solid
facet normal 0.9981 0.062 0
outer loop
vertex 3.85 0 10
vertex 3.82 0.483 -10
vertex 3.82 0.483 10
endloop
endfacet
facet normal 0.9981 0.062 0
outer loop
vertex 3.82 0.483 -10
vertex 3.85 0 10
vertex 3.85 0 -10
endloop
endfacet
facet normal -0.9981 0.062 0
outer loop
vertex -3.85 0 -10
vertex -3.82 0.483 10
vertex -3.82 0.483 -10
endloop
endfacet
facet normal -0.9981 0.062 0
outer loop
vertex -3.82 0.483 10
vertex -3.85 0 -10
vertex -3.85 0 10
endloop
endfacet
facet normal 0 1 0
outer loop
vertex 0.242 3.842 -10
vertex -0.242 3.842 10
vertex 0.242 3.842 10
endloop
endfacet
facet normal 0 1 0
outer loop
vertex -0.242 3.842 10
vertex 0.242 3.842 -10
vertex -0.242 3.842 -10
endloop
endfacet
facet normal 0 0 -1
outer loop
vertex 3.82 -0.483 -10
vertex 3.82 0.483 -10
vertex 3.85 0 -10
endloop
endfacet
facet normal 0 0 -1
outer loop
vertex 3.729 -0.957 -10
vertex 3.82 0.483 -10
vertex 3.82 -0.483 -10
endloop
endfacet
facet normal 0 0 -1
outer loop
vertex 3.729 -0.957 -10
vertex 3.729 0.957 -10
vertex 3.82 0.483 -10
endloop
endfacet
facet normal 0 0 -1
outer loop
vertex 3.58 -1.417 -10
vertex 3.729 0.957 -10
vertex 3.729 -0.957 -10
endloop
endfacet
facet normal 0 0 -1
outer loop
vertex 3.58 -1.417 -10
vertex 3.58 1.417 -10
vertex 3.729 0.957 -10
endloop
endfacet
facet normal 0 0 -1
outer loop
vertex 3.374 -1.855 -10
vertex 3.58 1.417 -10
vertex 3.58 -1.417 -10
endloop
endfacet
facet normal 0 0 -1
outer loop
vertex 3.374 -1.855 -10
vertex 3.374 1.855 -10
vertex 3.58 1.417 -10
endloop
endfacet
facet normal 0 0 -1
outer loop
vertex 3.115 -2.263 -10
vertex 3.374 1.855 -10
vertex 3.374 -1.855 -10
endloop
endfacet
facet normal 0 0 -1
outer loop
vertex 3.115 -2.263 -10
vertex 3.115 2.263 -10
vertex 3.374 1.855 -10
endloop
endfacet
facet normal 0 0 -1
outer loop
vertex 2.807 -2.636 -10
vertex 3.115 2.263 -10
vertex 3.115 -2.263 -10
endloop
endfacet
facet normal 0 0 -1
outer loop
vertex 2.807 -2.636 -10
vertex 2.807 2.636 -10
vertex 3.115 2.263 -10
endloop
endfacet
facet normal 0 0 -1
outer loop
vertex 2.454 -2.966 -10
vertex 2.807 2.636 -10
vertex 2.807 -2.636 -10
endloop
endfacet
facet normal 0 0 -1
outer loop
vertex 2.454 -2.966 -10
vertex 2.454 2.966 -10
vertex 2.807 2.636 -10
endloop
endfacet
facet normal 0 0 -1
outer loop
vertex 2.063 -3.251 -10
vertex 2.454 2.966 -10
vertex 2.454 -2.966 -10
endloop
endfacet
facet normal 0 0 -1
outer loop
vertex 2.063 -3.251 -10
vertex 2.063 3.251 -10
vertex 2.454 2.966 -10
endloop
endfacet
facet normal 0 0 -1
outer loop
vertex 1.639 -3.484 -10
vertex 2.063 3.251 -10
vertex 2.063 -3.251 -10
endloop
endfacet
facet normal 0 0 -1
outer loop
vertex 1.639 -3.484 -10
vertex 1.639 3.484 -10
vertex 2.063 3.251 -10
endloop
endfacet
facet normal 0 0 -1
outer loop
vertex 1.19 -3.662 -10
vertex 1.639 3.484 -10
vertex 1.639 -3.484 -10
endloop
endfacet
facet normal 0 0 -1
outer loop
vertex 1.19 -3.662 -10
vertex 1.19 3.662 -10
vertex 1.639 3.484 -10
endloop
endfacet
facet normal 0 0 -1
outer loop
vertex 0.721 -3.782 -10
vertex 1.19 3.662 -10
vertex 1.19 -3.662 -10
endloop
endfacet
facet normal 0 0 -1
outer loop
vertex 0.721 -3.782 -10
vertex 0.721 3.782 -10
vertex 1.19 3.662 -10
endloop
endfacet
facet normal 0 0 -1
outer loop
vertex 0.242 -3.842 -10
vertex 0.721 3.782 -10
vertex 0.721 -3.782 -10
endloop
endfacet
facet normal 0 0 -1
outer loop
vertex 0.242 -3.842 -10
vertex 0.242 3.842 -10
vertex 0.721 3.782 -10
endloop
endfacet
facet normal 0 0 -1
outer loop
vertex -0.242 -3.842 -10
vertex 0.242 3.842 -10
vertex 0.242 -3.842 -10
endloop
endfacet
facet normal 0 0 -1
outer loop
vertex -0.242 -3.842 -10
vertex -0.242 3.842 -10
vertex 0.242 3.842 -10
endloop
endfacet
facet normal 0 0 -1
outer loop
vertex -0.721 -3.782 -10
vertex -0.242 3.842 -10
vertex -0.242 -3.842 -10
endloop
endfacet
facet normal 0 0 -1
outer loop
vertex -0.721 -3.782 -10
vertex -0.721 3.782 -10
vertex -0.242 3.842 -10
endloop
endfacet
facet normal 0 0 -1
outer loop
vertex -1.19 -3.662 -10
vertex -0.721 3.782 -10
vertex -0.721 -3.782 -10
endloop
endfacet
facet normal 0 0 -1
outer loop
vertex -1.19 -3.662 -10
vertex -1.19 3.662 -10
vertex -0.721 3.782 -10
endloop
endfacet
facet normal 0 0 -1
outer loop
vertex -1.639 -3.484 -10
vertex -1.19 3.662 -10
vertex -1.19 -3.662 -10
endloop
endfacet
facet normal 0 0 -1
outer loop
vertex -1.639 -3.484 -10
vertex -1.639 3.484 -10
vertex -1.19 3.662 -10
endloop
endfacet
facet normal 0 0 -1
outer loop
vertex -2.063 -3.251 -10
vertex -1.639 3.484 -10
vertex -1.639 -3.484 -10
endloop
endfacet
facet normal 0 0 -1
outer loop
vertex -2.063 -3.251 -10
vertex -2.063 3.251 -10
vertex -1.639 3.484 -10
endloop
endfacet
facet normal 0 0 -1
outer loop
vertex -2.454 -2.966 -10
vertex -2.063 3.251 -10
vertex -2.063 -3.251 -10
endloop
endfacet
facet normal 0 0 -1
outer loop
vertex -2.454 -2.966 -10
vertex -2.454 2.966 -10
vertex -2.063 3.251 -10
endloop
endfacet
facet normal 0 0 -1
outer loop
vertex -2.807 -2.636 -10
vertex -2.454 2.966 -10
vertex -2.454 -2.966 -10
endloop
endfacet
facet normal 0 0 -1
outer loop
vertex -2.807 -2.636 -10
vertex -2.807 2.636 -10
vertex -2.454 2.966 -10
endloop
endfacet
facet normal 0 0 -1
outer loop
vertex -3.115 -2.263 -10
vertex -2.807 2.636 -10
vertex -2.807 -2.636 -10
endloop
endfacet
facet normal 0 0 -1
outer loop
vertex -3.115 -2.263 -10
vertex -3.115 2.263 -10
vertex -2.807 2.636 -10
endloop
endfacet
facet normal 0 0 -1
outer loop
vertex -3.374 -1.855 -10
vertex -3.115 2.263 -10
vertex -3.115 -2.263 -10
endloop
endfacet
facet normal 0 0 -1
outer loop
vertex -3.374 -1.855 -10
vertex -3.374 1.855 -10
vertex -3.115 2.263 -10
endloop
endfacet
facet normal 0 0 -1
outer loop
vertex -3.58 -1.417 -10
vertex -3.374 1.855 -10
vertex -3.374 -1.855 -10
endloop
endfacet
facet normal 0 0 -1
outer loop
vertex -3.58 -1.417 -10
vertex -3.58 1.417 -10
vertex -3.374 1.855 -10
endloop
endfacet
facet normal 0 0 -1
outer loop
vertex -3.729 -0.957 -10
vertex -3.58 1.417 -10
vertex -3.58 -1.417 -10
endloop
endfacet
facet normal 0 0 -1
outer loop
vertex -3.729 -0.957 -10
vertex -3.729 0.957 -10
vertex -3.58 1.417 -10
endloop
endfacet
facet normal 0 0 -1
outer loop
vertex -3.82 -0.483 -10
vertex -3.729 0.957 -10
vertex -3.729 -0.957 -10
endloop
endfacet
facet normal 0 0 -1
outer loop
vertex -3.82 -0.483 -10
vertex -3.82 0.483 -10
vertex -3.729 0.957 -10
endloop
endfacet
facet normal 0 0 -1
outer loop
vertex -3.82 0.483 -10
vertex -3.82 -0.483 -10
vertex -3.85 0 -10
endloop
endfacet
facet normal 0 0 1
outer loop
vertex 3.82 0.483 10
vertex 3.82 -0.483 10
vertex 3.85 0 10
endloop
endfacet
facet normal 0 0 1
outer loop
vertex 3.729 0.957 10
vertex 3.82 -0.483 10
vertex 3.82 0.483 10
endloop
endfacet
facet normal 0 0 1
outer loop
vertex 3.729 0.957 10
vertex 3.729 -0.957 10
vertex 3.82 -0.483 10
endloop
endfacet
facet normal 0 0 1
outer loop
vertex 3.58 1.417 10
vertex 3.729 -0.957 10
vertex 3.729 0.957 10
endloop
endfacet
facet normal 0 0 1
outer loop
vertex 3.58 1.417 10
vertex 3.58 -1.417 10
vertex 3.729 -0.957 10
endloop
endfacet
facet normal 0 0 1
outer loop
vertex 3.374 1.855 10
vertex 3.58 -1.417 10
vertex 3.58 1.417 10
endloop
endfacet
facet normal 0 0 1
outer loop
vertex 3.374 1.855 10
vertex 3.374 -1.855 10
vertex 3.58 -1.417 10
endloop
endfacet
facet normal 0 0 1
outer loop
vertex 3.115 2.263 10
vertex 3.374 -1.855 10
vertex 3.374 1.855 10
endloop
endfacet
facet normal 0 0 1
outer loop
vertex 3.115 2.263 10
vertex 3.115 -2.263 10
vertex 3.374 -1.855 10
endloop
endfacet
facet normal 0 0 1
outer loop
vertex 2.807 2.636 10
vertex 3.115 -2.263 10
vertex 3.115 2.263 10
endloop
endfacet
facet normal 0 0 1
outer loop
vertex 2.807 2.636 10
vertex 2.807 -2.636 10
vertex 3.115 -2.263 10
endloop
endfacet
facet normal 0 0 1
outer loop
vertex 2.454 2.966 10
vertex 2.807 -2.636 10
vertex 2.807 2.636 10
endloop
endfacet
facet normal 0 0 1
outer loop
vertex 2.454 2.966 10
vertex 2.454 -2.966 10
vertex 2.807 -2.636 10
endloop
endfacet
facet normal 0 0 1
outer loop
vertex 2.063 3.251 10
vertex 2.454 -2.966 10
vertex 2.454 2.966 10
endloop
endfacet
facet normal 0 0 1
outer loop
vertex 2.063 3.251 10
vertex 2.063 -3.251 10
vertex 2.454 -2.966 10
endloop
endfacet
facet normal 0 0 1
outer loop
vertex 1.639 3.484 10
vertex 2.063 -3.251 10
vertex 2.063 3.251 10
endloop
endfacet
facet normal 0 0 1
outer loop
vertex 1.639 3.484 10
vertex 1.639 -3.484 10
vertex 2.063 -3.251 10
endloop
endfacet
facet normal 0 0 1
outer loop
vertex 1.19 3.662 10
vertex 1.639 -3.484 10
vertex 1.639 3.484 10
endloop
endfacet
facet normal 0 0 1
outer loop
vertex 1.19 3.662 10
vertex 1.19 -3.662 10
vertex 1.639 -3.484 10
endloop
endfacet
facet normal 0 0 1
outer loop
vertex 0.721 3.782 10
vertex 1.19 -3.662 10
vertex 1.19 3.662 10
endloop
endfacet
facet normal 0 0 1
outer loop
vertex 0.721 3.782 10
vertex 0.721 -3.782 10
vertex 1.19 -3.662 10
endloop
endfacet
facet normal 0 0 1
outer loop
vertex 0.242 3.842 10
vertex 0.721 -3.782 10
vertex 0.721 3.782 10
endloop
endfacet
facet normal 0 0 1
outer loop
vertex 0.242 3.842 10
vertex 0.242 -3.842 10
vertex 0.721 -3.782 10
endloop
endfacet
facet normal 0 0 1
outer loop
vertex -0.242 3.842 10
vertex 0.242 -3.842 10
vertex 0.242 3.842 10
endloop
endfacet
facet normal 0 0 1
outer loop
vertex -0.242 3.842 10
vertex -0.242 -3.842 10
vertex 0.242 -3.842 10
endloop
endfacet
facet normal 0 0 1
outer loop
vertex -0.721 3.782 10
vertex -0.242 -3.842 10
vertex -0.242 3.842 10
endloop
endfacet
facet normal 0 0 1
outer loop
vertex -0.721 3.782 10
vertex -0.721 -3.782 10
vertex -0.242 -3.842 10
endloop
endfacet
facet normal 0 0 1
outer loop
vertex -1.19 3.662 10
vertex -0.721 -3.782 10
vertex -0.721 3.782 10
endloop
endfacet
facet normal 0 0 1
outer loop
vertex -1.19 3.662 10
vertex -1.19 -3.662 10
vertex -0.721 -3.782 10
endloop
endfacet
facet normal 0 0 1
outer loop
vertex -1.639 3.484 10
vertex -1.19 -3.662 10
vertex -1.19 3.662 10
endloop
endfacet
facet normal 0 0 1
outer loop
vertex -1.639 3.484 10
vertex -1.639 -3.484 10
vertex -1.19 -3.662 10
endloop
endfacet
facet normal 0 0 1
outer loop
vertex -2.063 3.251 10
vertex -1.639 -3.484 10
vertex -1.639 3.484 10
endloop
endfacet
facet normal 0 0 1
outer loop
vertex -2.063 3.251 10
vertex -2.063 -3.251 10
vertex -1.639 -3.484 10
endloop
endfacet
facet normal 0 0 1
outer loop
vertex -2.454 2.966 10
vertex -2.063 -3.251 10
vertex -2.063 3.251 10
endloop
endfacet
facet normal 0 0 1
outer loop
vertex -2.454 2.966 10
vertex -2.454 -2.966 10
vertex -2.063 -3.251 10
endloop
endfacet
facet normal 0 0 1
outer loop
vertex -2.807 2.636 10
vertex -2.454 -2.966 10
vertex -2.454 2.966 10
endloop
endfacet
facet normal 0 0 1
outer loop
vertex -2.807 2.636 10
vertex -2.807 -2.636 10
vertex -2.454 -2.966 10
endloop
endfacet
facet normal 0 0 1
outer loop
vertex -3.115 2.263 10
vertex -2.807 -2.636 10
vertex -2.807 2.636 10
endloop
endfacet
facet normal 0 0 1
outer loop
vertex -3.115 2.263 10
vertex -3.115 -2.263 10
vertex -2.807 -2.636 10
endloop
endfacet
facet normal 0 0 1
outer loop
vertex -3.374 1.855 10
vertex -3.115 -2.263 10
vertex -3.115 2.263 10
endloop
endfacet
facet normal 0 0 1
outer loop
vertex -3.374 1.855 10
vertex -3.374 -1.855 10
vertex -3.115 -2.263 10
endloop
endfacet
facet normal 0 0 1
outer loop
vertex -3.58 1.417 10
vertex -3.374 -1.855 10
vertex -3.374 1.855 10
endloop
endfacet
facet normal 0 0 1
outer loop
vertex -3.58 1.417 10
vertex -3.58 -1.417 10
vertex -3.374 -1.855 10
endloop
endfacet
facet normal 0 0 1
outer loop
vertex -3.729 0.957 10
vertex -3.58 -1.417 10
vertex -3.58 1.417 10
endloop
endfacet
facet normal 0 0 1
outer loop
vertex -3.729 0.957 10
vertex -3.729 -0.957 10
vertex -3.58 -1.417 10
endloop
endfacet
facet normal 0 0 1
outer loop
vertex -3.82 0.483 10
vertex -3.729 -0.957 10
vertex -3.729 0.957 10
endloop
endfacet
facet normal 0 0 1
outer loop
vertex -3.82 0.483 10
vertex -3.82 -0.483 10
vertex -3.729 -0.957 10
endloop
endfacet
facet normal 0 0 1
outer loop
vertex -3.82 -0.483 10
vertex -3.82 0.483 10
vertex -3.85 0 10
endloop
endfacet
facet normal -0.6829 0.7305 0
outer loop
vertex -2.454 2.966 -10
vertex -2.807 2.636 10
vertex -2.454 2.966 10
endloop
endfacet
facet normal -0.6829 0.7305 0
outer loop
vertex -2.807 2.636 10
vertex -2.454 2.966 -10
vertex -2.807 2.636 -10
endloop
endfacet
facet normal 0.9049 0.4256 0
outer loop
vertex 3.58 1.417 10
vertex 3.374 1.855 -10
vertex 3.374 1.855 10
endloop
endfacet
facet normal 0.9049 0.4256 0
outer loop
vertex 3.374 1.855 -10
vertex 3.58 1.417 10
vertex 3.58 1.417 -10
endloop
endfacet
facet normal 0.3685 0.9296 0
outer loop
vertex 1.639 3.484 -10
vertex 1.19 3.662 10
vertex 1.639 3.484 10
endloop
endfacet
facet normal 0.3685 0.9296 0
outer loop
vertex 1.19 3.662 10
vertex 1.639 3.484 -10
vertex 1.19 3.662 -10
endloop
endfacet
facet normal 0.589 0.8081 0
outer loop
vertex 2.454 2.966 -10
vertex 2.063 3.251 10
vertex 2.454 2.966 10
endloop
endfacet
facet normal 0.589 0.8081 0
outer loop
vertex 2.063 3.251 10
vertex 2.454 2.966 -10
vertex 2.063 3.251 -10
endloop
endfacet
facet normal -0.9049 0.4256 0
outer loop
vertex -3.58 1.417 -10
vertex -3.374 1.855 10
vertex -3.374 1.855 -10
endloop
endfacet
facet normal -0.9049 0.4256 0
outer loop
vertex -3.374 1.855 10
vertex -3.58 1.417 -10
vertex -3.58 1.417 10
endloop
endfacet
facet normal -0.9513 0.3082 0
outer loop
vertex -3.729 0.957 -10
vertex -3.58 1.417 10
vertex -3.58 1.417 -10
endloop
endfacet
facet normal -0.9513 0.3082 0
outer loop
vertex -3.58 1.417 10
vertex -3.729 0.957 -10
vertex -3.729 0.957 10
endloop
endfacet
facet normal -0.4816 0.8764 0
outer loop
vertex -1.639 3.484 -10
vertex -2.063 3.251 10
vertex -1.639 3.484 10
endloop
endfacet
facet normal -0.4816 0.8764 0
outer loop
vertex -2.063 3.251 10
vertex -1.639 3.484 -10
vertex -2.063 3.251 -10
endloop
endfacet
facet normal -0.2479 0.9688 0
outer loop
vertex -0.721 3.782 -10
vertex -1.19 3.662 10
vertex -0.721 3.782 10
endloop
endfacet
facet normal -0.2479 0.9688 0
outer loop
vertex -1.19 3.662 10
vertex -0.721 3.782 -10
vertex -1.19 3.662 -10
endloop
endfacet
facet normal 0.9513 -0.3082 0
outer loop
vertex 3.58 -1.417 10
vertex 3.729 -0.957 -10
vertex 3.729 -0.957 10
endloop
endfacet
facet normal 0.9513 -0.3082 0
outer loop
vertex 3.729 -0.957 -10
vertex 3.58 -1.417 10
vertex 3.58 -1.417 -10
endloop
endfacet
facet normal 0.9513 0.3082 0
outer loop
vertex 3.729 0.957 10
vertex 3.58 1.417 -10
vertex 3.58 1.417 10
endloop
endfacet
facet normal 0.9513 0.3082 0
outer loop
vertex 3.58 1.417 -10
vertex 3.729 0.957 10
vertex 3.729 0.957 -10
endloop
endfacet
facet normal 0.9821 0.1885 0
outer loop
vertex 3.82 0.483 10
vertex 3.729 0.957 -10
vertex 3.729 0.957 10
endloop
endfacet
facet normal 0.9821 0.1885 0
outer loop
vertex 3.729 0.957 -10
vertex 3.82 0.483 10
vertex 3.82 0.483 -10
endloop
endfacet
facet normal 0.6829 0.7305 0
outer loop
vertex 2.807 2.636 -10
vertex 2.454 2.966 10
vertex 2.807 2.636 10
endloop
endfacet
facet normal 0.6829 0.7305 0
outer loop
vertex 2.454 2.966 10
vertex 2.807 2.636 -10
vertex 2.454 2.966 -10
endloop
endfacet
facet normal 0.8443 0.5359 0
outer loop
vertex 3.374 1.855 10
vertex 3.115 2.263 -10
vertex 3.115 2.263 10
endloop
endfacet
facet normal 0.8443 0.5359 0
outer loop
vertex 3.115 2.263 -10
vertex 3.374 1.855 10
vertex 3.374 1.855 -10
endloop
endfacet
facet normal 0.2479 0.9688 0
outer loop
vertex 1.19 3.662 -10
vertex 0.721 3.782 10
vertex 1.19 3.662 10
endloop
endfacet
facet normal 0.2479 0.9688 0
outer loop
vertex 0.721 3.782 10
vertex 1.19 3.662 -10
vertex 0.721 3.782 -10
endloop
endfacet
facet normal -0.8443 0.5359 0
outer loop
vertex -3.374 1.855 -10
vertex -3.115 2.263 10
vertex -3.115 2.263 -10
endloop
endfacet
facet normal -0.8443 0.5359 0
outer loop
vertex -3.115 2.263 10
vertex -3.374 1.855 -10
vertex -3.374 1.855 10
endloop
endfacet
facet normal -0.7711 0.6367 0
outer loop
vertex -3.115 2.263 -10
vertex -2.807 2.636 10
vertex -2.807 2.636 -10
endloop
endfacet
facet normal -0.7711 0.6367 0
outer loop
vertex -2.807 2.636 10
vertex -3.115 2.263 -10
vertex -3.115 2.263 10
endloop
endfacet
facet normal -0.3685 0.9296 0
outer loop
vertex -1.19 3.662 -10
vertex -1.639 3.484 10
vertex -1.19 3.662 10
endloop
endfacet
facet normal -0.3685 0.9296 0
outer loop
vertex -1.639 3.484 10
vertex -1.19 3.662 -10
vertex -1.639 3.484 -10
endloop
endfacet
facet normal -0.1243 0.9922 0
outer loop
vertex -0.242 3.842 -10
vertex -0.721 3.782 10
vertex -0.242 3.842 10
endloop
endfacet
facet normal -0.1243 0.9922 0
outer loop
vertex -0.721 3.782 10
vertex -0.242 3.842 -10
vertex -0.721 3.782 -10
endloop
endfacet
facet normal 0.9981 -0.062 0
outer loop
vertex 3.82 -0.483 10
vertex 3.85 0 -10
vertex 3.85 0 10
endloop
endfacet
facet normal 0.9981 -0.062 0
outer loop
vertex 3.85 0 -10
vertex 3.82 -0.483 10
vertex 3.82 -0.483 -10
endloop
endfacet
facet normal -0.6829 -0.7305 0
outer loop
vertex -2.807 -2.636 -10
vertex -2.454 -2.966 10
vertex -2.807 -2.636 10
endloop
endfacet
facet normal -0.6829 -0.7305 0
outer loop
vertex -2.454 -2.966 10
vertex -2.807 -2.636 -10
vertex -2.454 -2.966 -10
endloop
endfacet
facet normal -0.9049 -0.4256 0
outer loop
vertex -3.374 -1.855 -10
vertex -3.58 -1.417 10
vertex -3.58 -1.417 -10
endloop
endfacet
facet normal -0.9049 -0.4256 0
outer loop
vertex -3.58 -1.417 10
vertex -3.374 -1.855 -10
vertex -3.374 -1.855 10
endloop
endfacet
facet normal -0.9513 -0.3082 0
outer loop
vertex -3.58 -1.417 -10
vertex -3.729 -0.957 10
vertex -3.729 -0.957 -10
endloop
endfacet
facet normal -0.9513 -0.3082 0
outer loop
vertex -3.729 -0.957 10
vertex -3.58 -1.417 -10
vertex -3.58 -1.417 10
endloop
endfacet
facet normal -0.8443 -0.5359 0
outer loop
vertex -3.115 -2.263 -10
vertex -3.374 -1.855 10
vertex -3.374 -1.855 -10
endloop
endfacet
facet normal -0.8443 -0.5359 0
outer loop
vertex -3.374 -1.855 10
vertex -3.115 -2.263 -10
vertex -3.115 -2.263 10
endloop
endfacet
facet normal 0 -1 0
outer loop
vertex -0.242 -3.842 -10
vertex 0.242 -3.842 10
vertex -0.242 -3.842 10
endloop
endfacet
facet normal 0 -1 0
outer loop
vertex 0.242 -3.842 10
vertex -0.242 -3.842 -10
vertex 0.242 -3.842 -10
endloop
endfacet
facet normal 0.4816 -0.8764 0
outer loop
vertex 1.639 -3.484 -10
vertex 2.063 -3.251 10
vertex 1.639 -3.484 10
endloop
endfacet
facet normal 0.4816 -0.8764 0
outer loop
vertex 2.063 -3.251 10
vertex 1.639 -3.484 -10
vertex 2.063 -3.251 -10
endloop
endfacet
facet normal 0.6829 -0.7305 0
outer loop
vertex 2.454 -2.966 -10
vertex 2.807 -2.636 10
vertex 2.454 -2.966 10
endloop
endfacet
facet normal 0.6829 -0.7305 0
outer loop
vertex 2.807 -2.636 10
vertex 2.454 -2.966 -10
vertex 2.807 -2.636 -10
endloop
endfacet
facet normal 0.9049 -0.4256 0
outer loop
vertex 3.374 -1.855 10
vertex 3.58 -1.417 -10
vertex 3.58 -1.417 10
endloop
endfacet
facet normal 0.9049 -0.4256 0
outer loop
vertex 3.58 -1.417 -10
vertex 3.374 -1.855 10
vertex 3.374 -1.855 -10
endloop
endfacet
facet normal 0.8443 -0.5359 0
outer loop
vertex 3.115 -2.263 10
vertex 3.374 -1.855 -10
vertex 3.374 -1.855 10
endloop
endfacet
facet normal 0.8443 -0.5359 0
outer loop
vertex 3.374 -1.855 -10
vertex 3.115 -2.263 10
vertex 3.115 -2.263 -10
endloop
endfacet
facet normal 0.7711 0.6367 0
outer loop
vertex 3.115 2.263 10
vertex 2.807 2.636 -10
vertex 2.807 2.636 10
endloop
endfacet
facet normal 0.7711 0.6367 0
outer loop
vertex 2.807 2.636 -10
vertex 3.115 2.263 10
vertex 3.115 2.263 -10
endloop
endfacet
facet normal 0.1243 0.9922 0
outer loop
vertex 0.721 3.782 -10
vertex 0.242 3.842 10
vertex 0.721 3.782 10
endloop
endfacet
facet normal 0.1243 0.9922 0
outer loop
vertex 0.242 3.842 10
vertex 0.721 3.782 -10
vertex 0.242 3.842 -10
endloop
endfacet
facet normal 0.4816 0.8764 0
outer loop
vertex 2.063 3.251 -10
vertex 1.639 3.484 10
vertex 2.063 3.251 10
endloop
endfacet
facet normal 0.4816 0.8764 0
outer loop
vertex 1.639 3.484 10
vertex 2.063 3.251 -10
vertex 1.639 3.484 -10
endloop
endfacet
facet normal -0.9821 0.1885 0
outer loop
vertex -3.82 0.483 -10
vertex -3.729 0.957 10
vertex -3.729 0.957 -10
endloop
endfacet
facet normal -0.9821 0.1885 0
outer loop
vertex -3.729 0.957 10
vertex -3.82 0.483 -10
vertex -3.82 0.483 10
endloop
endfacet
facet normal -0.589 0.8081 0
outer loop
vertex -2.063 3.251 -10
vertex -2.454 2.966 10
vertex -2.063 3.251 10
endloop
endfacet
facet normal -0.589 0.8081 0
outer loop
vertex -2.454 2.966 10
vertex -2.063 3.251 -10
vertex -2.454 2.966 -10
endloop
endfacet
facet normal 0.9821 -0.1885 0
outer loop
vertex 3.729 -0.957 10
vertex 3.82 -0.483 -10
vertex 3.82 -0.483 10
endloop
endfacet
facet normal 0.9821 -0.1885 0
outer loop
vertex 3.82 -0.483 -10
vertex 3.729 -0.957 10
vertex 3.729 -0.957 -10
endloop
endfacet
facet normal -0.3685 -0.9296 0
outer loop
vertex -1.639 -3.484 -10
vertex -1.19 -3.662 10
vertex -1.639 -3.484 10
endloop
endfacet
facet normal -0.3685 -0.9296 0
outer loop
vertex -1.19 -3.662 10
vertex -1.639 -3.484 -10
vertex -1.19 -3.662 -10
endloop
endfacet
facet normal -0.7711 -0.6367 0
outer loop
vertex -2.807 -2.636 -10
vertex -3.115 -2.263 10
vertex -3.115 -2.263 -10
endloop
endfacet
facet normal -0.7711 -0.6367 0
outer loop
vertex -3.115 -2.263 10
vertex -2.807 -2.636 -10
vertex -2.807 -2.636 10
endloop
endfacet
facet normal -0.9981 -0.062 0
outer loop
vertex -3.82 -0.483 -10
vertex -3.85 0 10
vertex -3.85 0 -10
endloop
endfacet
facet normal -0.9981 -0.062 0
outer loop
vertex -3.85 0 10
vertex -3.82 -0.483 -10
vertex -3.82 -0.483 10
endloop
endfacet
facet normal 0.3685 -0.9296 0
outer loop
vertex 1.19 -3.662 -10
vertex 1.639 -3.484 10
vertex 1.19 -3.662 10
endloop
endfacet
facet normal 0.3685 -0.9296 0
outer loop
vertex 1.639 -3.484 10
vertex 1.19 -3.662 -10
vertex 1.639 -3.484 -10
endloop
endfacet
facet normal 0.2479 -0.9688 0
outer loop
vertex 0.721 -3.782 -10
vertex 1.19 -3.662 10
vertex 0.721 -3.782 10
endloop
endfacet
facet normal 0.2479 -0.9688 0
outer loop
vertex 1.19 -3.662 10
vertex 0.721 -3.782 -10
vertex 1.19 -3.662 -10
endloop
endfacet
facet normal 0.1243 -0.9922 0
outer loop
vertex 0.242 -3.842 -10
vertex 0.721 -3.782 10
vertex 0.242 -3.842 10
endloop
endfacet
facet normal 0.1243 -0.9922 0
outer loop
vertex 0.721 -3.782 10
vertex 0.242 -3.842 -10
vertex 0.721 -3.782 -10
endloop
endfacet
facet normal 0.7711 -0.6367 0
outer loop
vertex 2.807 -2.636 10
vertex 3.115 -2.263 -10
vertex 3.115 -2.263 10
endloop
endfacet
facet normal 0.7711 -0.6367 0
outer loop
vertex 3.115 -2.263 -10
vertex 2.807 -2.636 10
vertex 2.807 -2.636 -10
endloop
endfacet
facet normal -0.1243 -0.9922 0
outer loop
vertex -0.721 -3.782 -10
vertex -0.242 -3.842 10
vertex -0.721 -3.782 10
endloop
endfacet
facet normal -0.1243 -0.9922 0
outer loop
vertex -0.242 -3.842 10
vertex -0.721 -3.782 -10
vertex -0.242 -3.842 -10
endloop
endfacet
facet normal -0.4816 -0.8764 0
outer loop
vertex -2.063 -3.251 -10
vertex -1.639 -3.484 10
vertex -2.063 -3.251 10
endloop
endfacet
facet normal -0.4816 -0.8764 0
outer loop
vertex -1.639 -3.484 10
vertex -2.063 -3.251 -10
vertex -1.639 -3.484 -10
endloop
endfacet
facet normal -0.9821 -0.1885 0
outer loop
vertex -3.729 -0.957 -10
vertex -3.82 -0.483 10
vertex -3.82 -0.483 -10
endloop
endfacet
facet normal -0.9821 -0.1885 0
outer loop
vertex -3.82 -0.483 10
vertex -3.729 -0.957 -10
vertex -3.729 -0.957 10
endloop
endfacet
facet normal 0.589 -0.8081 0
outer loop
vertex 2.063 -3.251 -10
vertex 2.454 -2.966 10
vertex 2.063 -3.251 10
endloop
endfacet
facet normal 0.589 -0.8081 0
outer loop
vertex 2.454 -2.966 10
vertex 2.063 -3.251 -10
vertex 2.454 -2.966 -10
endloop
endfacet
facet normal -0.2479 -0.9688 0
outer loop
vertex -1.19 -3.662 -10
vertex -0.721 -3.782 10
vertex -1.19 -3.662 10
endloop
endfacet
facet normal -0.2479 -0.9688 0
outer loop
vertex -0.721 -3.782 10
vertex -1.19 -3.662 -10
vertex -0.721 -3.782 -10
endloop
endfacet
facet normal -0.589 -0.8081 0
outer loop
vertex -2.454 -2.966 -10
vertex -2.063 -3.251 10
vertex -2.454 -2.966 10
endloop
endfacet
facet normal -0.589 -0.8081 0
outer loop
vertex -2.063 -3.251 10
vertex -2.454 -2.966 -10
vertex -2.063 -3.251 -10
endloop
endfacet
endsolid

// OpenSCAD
$fn = 50;


difference() {
	union() {
		translate(v = [0, 0, -10.0000000000]) {
			cylinder(h = 20, r = 3.8500000000);
		}
	}
	union() {
		translate(v = [0, 0, -100.0000000000]) {
			cylinder(h = 200, r = 0);
		}
	}
}
